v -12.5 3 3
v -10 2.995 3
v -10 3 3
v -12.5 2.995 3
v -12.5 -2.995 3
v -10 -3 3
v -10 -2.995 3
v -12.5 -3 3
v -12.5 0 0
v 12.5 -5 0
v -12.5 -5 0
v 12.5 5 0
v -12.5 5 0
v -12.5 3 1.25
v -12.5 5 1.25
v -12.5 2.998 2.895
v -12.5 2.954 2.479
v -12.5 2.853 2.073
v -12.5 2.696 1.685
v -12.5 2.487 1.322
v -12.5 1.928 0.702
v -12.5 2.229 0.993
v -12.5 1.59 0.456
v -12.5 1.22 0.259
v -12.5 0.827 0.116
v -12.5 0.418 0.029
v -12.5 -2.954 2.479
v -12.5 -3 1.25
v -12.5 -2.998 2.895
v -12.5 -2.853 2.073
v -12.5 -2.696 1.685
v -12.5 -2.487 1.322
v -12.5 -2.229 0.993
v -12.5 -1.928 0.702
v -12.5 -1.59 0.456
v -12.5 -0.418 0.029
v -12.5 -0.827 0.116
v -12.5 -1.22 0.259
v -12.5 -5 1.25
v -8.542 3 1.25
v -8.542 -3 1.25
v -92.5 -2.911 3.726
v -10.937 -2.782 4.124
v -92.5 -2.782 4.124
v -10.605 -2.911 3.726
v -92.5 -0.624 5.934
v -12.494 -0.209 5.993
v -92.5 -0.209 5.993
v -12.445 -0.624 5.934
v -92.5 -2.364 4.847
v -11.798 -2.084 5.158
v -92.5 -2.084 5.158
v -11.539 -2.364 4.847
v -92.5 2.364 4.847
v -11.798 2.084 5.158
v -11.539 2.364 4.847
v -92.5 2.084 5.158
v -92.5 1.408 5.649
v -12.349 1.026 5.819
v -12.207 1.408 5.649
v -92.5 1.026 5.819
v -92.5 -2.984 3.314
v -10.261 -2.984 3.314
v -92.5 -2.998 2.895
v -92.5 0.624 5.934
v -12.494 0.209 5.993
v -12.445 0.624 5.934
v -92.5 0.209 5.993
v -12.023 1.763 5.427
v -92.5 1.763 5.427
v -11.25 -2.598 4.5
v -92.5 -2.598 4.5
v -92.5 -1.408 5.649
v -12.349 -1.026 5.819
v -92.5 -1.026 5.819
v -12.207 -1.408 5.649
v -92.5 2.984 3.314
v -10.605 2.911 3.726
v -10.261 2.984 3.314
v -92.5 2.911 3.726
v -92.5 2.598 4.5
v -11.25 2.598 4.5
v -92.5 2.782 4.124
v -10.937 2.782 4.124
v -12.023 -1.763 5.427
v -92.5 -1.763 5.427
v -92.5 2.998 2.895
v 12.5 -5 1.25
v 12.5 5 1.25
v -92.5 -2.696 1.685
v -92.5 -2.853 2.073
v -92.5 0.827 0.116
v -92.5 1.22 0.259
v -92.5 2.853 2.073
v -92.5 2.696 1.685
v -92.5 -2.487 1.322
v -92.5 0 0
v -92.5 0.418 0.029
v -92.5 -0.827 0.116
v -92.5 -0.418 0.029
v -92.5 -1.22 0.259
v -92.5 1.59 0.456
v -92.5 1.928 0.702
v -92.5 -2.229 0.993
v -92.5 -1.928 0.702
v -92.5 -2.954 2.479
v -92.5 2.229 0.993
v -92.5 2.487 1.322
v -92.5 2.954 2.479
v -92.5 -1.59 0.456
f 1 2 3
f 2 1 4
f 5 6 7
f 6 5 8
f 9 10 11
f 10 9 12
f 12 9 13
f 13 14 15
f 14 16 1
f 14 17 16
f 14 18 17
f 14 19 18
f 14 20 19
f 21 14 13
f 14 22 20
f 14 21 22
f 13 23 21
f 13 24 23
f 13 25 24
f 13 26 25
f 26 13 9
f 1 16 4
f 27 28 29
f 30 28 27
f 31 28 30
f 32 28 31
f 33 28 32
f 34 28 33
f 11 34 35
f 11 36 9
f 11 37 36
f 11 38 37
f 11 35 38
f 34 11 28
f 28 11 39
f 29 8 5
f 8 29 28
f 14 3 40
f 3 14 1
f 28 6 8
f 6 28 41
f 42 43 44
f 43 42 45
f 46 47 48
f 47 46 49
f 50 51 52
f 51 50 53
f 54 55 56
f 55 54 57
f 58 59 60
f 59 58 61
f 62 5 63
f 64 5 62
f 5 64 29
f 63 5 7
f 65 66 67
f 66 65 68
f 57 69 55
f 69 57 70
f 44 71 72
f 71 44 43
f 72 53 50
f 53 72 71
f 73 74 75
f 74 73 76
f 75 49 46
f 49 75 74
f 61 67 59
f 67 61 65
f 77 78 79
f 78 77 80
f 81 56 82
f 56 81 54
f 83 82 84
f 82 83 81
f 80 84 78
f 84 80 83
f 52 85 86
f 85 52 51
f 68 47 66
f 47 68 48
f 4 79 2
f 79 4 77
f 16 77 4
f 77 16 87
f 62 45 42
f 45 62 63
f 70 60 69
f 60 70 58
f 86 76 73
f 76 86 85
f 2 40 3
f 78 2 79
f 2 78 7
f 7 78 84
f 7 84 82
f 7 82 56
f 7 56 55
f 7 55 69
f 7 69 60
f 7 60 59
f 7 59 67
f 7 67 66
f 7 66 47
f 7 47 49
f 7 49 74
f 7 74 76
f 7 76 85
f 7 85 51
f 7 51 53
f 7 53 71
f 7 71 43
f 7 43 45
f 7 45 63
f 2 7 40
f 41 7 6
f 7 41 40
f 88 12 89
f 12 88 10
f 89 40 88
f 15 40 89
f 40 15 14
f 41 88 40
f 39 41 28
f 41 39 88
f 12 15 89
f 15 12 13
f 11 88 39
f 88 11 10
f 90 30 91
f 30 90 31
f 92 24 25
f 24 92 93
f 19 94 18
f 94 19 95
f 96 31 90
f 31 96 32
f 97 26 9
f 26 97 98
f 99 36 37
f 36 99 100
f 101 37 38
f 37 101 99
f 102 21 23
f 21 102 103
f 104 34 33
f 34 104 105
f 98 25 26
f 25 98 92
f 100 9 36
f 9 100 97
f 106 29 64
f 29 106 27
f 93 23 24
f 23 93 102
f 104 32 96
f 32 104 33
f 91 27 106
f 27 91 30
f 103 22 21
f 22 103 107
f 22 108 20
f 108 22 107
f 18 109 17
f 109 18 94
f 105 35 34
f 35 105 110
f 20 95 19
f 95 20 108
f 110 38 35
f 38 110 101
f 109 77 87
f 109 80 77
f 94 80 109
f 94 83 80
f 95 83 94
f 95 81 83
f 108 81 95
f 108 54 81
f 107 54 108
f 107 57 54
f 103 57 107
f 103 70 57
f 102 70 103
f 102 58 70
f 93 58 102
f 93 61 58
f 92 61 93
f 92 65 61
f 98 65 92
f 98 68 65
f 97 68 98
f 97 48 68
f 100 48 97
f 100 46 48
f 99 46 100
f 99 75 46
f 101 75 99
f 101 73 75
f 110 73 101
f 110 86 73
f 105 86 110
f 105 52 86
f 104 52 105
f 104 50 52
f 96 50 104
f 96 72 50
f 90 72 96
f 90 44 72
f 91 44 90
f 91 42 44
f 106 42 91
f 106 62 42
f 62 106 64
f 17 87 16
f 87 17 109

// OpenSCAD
// Sample plete for OpenFlexure Block Stage saple holder. DoMB SPIM
// Borys Olifirov 2024

FDM_offset = 0.2;

stick_d = 6;
stick_l = 80;

plate_w = 10;
plate_l = 25;
plate_h = 1.25;


 module prism(l, w, h){
      polyhedron(//pt 0        1        2        3        4        5
              points=[[0,0,0], [l,0,0], [l,w,0], [0,w,0], [0,w,h], [l,w,h]],
              faces=[[0,1,2,3],[5,4,3,2],[0,4,5,1],[0,3,4],[5,2,1]]);
      }

module SamplePlate() {
    union() {
        // plate
        translate([0,0,plate_h/2])
            cube([plate_l, plate_w, plate_h], center = true);
        
        // plate to stick adapter
        intersection() {
            rotate([0,0,90])
            translate([-plate_w/2,plate_l/2-5,0])
                prism(l = plate_w, w = 5, h = stick_d);
            union() {
                translate([-(plate_l/2-10),0,stick_d/4])
                    cube([20,stick_d,stick_d/2], center = true);
                rotate([0,90,0])
                translate([-stick_d/2,0,-10])
                    cylinder(d = stick_d, h = 20, center = true, $fn = 45);
                }
            }
        
        // stick
        rotate([0,90,0])
        translate([-stick_d/2,0,-(stick_l/2+plate_l/2)])
            cylinder(d = stick_d, h = stick_l, center = true, $fn = 45);
    }
}


SamplePlate();
